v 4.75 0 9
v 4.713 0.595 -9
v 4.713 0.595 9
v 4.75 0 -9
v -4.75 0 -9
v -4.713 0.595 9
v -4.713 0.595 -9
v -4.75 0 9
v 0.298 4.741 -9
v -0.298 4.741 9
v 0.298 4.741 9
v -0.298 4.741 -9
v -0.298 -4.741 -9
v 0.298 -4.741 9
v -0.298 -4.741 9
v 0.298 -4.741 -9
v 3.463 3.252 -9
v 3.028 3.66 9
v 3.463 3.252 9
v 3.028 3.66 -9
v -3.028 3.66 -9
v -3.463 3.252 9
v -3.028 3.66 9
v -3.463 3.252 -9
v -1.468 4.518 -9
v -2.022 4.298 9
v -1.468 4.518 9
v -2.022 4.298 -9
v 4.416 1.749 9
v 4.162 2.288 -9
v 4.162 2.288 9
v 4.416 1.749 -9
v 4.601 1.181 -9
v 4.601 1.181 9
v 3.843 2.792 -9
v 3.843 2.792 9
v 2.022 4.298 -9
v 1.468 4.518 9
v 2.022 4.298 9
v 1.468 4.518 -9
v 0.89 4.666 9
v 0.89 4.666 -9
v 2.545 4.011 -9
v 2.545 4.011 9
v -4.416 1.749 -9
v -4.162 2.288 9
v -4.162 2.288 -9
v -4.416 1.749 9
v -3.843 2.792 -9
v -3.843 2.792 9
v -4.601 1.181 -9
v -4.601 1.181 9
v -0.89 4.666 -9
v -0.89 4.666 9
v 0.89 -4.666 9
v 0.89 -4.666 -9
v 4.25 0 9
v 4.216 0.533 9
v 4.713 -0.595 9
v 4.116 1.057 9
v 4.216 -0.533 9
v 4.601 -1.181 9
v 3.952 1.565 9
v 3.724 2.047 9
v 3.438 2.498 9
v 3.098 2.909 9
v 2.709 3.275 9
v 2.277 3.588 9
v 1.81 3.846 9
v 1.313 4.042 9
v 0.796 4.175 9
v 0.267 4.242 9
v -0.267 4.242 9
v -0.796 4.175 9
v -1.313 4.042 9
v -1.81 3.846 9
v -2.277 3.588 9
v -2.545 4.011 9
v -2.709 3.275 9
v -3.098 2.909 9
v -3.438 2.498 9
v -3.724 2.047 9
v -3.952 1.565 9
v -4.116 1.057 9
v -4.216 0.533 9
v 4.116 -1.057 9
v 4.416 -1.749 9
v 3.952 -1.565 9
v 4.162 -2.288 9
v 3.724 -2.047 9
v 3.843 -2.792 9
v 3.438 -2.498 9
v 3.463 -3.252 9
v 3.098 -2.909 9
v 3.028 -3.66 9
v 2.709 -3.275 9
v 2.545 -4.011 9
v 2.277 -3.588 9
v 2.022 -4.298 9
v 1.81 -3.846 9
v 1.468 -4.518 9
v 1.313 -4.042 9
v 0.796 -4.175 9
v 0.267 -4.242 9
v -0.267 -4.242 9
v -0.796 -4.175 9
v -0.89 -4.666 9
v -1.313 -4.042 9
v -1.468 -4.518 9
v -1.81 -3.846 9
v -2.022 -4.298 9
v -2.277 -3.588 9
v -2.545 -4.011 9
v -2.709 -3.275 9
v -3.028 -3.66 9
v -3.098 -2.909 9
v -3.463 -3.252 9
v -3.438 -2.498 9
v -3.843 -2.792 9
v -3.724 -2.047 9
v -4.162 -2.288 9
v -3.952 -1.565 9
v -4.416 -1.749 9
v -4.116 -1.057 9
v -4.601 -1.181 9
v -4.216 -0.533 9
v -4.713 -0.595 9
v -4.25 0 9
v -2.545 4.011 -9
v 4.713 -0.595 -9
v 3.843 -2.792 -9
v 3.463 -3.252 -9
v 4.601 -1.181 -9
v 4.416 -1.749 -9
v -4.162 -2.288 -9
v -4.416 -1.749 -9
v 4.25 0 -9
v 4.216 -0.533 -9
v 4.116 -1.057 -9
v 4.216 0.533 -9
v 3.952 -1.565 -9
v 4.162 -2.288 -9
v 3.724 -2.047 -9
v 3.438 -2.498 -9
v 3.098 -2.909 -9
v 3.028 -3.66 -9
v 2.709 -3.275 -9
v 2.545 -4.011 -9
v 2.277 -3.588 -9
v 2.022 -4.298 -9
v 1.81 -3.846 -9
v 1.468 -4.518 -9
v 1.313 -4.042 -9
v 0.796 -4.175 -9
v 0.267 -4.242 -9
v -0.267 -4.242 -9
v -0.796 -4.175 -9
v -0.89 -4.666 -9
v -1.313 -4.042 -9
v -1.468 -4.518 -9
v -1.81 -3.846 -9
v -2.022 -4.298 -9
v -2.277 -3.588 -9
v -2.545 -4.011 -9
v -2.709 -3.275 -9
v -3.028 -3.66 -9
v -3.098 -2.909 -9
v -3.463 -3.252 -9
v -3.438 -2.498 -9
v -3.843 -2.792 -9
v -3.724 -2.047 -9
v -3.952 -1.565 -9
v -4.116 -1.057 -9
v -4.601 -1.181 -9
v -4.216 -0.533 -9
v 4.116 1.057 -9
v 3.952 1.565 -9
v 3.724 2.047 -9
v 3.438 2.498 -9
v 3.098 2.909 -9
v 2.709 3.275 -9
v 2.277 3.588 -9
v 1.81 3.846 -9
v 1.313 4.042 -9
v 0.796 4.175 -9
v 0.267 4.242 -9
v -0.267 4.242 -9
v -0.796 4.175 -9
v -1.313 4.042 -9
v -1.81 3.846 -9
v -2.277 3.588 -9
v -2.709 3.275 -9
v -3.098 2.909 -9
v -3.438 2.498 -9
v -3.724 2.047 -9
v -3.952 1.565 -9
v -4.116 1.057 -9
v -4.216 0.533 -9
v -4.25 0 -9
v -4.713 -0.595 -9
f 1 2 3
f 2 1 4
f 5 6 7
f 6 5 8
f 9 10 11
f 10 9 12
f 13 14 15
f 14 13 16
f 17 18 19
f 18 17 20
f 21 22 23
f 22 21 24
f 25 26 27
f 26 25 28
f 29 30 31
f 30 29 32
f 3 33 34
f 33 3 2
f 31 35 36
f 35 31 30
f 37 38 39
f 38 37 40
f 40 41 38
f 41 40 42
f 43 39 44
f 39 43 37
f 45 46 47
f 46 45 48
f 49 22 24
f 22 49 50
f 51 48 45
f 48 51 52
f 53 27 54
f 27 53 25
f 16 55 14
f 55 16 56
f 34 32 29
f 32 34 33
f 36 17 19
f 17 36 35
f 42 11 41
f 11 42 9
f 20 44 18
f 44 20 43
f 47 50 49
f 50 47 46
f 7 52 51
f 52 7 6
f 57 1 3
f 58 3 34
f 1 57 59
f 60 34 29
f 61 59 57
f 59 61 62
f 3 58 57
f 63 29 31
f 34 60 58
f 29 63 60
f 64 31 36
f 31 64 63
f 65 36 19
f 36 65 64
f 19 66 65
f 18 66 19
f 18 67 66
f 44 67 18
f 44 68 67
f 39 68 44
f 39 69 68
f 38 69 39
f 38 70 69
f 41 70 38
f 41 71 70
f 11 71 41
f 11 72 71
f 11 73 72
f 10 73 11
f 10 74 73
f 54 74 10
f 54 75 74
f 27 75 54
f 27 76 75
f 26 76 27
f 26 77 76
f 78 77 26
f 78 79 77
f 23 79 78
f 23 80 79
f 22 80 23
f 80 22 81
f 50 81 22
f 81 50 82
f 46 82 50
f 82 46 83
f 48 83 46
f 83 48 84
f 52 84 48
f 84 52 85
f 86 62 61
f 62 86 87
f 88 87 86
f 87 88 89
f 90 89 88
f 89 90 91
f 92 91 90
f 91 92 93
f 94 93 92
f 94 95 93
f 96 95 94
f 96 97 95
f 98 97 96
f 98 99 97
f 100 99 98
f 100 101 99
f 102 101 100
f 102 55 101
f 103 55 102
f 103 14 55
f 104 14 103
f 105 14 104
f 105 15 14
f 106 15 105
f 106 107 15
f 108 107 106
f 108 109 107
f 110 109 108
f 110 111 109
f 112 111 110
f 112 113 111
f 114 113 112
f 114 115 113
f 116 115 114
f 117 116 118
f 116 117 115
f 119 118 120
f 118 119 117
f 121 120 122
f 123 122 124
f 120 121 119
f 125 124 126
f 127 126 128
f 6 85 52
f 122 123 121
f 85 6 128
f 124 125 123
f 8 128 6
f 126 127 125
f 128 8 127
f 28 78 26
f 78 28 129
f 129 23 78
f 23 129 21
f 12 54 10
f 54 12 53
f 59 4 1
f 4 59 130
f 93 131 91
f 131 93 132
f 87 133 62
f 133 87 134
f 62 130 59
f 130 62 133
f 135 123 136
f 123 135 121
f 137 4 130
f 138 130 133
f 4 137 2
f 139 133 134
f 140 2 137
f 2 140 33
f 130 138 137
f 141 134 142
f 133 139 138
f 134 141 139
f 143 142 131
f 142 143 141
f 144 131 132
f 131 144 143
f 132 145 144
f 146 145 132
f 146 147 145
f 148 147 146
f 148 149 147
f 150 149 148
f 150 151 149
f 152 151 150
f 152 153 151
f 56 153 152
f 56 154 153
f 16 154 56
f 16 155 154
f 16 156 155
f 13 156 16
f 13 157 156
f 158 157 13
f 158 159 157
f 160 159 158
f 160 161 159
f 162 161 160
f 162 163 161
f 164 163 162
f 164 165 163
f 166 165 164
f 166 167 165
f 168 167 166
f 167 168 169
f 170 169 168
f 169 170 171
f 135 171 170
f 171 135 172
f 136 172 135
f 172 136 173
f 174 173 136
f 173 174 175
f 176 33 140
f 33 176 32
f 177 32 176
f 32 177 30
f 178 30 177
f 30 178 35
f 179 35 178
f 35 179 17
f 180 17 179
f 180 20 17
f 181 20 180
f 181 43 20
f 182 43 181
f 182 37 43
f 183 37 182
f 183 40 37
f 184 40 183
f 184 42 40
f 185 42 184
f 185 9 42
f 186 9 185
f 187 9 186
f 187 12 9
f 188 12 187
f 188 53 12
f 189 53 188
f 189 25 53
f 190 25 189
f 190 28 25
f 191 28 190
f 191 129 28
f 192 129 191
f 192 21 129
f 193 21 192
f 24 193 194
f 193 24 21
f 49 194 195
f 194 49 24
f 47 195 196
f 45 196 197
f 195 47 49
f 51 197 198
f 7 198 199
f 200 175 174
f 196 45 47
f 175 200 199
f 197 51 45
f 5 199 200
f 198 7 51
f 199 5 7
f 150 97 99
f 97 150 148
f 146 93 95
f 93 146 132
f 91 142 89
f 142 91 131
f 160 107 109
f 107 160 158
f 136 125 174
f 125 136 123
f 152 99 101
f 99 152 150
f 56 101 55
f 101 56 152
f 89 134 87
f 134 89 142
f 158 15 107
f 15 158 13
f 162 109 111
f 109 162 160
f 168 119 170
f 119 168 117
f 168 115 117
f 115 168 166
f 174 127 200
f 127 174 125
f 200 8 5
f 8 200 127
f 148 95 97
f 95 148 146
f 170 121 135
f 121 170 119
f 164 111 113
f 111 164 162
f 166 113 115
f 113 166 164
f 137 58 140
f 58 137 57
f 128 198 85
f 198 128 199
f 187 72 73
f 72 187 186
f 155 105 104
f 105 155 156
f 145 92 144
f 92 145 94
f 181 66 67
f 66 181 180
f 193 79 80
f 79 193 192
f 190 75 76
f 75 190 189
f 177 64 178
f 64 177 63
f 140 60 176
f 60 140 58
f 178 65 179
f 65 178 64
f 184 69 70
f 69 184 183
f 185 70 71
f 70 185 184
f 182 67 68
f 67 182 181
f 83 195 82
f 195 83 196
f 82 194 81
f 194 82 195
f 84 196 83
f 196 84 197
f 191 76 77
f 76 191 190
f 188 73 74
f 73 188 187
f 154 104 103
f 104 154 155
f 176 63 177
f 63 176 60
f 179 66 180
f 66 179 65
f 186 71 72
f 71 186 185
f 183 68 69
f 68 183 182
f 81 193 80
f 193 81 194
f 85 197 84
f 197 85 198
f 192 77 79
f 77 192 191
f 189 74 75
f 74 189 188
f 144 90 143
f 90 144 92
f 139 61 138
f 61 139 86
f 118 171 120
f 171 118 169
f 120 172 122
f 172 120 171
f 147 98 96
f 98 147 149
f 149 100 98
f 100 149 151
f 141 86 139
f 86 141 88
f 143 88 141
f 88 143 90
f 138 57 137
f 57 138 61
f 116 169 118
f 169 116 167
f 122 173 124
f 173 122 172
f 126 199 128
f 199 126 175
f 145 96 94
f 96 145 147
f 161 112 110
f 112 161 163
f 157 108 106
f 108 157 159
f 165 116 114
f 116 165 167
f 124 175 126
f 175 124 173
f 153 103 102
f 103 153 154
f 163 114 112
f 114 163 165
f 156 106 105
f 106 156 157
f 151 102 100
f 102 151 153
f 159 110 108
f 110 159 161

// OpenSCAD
$fn = 50;


difference() {
	union() {
		translate(v = [0, 0, -9.0000000000]) {
			cylinder(h = 18, r = 4.7500000000);
		}
	}
	union() {
		translate(v = [0, 0, -100.0000000000]) {
			cylinder(h = 200, r = 4.2500000000);
		}
	}
}
